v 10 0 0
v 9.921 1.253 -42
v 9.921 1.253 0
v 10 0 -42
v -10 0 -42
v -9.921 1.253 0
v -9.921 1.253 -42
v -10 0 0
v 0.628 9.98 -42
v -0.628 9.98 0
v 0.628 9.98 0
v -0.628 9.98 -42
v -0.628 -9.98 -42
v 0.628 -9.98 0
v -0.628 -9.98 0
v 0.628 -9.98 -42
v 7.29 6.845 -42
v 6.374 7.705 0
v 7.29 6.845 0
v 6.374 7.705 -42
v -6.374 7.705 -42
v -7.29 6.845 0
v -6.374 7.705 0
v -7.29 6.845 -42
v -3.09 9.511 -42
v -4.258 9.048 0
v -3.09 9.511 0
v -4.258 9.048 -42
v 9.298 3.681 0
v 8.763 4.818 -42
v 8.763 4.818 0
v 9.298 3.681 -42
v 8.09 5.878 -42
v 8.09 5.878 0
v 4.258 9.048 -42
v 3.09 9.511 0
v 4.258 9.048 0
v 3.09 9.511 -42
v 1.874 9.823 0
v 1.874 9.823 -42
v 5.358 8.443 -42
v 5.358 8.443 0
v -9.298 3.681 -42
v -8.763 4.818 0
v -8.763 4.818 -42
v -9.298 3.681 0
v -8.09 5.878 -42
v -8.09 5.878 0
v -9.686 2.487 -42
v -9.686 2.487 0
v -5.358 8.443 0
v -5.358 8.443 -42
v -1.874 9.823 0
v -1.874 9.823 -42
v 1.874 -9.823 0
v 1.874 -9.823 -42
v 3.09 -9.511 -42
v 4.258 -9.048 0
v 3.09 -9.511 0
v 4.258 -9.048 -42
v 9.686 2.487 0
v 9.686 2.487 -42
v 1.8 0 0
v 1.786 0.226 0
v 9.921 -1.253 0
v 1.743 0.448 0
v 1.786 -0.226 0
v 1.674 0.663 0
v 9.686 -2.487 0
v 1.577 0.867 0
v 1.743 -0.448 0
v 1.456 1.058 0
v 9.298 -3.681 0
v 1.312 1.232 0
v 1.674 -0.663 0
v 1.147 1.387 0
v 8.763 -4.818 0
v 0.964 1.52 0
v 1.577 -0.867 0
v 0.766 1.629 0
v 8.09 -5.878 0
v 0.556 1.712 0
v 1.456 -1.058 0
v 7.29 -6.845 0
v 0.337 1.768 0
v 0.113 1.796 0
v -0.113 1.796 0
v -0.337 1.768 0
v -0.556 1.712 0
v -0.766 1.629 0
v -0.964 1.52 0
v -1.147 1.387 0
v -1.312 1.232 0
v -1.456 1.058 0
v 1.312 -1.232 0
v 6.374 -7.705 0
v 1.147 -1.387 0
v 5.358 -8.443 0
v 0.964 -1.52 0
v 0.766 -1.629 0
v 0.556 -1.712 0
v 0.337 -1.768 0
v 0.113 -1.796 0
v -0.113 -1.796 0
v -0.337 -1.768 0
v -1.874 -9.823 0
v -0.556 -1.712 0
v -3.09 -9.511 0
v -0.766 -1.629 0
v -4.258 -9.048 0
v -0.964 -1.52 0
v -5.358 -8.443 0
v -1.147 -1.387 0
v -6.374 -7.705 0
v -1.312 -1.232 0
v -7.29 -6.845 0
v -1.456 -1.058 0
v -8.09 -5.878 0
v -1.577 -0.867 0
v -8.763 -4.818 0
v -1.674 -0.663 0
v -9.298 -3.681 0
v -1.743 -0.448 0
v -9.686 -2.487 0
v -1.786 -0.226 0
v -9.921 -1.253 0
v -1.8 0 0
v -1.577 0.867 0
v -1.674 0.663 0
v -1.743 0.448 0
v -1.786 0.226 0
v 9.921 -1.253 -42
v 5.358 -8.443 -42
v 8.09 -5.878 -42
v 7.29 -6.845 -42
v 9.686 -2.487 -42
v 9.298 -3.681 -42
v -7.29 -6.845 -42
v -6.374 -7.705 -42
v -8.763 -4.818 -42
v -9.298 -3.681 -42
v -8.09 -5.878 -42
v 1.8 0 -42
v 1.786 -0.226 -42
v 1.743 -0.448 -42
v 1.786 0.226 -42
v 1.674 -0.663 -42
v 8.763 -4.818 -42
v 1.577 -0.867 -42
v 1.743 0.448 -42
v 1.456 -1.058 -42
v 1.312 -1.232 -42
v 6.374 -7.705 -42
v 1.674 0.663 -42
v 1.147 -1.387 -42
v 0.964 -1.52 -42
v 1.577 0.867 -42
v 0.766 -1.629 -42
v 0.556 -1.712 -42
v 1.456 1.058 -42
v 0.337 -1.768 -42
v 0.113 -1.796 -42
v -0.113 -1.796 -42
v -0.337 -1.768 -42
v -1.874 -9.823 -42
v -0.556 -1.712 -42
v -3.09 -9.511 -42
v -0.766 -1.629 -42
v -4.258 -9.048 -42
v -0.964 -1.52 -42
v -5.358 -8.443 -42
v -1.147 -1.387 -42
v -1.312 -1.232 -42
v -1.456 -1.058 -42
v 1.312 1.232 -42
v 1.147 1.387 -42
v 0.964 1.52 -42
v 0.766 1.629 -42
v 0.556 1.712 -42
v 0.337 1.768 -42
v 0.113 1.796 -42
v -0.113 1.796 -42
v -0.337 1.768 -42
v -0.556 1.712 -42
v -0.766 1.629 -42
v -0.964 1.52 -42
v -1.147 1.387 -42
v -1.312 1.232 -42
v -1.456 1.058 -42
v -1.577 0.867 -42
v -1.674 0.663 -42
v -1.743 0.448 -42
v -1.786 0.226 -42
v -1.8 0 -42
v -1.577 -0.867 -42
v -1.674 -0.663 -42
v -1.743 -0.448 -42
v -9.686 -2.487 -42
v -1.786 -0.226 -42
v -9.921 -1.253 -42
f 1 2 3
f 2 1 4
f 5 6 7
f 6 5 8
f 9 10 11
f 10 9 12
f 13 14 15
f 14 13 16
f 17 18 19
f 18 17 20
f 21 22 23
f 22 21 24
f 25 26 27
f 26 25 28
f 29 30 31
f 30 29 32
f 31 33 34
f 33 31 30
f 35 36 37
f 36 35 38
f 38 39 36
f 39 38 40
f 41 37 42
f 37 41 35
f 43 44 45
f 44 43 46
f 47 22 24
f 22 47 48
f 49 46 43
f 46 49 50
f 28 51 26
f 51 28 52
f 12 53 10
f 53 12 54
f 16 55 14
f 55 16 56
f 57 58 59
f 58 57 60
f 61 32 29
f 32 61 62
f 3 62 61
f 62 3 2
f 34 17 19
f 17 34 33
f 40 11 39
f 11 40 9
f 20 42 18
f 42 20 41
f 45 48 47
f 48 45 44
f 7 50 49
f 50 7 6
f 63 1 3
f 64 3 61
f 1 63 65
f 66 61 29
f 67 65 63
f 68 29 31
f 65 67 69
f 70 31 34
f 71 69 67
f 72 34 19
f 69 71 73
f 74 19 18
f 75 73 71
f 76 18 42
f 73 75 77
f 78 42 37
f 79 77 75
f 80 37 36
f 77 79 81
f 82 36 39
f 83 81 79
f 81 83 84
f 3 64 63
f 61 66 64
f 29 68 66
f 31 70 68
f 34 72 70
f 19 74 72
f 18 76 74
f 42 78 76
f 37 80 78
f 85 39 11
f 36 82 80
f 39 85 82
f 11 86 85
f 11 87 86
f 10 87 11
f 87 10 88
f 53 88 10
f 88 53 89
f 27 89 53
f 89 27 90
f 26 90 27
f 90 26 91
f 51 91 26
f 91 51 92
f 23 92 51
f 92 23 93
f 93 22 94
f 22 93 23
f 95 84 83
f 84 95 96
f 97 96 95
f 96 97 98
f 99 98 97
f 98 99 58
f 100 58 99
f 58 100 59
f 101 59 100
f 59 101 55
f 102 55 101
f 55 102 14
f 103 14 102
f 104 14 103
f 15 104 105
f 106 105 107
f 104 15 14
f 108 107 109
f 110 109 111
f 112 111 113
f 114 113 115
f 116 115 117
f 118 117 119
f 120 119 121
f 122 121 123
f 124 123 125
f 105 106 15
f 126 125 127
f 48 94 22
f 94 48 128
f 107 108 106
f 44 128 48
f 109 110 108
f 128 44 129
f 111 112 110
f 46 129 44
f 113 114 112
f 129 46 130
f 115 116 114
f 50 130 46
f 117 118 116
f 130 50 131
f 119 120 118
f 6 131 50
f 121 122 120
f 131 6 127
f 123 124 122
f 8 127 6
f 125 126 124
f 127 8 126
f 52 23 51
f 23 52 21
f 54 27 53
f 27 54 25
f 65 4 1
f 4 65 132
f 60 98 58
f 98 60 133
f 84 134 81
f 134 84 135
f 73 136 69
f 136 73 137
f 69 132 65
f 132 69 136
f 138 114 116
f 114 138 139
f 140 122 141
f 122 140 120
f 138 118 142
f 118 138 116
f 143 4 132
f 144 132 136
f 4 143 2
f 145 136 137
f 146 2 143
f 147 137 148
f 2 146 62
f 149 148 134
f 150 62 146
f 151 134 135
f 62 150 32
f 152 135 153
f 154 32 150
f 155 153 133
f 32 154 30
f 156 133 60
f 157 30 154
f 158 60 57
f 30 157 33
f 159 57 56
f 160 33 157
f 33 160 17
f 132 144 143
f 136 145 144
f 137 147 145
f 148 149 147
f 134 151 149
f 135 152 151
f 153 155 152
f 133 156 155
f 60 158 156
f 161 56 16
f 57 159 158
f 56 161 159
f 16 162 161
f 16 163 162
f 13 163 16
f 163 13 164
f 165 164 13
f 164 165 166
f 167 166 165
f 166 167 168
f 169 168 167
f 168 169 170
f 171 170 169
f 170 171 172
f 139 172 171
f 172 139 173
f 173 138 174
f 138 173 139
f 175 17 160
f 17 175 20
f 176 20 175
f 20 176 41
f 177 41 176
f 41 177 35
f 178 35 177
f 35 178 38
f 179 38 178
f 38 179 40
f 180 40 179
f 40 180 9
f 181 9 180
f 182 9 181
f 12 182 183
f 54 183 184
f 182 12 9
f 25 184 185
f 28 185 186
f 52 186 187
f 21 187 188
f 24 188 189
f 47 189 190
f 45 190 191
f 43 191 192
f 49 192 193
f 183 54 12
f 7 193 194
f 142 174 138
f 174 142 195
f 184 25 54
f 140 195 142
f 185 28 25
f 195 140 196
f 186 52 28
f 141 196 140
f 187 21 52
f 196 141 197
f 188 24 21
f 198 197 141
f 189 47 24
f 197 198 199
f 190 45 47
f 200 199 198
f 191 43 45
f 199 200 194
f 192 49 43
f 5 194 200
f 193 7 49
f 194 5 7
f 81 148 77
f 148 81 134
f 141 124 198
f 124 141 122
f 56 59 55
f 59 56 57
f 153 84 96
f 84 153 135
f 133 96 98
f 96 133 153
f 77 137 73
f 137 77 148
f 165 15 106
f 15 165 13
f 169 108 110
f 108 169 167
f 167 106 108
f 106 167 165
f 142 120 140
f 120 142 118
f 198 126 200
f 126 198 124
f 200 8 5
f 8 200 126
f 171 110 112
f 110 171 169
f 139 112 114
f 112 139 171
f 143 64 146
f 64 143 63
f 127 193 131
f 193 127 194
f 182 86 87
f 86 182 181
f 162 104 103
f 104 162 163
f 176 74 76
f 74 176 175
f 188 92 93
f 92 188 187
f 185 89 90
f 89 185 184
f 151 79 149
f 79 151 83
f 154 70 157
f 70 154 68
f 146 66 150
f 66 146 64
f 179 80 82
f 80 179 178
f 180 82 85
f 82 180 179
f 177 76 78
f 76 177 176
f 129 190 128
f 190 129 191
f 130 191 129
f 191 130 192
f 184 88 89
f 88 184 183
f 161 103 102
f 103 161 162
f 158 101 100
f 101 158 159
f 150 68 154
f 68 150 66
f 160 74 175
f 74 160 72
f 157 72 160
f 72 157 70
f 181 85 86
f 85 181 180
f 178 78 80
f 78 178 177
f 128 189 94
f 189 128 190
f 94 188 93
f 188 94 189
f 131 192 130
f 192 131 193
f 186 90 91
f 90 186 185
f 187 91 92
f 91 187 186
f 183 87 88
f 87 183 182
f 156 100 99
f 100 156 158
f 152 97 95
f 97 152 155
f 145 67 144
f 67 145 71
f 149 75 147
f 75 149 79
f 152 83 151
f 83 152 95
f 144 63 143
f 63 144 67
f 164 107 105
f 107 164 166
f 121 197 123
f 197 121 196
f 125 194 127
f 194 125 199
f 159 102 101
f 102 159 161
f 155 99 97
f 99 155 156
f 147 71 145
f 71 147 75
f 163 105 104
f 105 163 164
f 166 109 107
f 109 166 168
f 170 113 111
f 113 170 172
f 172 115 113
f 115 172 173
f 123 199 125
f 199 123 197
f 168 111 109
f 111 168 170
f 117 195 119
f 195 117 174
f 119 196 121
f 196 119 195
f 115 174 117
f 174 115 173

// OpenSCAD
$fn = 50;


difference() {
	union() {
		translate(v = [0, 0, -42.0000000000]) {
			cylinder(h = 42, r = 10.0000000000);
		}
		cylinder(h = 0, r = 19.0000000000);
	}
	union() {
		#translate(v = [0, 0, -42]) {
			cylinder(h = 42, r = 1.8000000000);
		}
	}
}
